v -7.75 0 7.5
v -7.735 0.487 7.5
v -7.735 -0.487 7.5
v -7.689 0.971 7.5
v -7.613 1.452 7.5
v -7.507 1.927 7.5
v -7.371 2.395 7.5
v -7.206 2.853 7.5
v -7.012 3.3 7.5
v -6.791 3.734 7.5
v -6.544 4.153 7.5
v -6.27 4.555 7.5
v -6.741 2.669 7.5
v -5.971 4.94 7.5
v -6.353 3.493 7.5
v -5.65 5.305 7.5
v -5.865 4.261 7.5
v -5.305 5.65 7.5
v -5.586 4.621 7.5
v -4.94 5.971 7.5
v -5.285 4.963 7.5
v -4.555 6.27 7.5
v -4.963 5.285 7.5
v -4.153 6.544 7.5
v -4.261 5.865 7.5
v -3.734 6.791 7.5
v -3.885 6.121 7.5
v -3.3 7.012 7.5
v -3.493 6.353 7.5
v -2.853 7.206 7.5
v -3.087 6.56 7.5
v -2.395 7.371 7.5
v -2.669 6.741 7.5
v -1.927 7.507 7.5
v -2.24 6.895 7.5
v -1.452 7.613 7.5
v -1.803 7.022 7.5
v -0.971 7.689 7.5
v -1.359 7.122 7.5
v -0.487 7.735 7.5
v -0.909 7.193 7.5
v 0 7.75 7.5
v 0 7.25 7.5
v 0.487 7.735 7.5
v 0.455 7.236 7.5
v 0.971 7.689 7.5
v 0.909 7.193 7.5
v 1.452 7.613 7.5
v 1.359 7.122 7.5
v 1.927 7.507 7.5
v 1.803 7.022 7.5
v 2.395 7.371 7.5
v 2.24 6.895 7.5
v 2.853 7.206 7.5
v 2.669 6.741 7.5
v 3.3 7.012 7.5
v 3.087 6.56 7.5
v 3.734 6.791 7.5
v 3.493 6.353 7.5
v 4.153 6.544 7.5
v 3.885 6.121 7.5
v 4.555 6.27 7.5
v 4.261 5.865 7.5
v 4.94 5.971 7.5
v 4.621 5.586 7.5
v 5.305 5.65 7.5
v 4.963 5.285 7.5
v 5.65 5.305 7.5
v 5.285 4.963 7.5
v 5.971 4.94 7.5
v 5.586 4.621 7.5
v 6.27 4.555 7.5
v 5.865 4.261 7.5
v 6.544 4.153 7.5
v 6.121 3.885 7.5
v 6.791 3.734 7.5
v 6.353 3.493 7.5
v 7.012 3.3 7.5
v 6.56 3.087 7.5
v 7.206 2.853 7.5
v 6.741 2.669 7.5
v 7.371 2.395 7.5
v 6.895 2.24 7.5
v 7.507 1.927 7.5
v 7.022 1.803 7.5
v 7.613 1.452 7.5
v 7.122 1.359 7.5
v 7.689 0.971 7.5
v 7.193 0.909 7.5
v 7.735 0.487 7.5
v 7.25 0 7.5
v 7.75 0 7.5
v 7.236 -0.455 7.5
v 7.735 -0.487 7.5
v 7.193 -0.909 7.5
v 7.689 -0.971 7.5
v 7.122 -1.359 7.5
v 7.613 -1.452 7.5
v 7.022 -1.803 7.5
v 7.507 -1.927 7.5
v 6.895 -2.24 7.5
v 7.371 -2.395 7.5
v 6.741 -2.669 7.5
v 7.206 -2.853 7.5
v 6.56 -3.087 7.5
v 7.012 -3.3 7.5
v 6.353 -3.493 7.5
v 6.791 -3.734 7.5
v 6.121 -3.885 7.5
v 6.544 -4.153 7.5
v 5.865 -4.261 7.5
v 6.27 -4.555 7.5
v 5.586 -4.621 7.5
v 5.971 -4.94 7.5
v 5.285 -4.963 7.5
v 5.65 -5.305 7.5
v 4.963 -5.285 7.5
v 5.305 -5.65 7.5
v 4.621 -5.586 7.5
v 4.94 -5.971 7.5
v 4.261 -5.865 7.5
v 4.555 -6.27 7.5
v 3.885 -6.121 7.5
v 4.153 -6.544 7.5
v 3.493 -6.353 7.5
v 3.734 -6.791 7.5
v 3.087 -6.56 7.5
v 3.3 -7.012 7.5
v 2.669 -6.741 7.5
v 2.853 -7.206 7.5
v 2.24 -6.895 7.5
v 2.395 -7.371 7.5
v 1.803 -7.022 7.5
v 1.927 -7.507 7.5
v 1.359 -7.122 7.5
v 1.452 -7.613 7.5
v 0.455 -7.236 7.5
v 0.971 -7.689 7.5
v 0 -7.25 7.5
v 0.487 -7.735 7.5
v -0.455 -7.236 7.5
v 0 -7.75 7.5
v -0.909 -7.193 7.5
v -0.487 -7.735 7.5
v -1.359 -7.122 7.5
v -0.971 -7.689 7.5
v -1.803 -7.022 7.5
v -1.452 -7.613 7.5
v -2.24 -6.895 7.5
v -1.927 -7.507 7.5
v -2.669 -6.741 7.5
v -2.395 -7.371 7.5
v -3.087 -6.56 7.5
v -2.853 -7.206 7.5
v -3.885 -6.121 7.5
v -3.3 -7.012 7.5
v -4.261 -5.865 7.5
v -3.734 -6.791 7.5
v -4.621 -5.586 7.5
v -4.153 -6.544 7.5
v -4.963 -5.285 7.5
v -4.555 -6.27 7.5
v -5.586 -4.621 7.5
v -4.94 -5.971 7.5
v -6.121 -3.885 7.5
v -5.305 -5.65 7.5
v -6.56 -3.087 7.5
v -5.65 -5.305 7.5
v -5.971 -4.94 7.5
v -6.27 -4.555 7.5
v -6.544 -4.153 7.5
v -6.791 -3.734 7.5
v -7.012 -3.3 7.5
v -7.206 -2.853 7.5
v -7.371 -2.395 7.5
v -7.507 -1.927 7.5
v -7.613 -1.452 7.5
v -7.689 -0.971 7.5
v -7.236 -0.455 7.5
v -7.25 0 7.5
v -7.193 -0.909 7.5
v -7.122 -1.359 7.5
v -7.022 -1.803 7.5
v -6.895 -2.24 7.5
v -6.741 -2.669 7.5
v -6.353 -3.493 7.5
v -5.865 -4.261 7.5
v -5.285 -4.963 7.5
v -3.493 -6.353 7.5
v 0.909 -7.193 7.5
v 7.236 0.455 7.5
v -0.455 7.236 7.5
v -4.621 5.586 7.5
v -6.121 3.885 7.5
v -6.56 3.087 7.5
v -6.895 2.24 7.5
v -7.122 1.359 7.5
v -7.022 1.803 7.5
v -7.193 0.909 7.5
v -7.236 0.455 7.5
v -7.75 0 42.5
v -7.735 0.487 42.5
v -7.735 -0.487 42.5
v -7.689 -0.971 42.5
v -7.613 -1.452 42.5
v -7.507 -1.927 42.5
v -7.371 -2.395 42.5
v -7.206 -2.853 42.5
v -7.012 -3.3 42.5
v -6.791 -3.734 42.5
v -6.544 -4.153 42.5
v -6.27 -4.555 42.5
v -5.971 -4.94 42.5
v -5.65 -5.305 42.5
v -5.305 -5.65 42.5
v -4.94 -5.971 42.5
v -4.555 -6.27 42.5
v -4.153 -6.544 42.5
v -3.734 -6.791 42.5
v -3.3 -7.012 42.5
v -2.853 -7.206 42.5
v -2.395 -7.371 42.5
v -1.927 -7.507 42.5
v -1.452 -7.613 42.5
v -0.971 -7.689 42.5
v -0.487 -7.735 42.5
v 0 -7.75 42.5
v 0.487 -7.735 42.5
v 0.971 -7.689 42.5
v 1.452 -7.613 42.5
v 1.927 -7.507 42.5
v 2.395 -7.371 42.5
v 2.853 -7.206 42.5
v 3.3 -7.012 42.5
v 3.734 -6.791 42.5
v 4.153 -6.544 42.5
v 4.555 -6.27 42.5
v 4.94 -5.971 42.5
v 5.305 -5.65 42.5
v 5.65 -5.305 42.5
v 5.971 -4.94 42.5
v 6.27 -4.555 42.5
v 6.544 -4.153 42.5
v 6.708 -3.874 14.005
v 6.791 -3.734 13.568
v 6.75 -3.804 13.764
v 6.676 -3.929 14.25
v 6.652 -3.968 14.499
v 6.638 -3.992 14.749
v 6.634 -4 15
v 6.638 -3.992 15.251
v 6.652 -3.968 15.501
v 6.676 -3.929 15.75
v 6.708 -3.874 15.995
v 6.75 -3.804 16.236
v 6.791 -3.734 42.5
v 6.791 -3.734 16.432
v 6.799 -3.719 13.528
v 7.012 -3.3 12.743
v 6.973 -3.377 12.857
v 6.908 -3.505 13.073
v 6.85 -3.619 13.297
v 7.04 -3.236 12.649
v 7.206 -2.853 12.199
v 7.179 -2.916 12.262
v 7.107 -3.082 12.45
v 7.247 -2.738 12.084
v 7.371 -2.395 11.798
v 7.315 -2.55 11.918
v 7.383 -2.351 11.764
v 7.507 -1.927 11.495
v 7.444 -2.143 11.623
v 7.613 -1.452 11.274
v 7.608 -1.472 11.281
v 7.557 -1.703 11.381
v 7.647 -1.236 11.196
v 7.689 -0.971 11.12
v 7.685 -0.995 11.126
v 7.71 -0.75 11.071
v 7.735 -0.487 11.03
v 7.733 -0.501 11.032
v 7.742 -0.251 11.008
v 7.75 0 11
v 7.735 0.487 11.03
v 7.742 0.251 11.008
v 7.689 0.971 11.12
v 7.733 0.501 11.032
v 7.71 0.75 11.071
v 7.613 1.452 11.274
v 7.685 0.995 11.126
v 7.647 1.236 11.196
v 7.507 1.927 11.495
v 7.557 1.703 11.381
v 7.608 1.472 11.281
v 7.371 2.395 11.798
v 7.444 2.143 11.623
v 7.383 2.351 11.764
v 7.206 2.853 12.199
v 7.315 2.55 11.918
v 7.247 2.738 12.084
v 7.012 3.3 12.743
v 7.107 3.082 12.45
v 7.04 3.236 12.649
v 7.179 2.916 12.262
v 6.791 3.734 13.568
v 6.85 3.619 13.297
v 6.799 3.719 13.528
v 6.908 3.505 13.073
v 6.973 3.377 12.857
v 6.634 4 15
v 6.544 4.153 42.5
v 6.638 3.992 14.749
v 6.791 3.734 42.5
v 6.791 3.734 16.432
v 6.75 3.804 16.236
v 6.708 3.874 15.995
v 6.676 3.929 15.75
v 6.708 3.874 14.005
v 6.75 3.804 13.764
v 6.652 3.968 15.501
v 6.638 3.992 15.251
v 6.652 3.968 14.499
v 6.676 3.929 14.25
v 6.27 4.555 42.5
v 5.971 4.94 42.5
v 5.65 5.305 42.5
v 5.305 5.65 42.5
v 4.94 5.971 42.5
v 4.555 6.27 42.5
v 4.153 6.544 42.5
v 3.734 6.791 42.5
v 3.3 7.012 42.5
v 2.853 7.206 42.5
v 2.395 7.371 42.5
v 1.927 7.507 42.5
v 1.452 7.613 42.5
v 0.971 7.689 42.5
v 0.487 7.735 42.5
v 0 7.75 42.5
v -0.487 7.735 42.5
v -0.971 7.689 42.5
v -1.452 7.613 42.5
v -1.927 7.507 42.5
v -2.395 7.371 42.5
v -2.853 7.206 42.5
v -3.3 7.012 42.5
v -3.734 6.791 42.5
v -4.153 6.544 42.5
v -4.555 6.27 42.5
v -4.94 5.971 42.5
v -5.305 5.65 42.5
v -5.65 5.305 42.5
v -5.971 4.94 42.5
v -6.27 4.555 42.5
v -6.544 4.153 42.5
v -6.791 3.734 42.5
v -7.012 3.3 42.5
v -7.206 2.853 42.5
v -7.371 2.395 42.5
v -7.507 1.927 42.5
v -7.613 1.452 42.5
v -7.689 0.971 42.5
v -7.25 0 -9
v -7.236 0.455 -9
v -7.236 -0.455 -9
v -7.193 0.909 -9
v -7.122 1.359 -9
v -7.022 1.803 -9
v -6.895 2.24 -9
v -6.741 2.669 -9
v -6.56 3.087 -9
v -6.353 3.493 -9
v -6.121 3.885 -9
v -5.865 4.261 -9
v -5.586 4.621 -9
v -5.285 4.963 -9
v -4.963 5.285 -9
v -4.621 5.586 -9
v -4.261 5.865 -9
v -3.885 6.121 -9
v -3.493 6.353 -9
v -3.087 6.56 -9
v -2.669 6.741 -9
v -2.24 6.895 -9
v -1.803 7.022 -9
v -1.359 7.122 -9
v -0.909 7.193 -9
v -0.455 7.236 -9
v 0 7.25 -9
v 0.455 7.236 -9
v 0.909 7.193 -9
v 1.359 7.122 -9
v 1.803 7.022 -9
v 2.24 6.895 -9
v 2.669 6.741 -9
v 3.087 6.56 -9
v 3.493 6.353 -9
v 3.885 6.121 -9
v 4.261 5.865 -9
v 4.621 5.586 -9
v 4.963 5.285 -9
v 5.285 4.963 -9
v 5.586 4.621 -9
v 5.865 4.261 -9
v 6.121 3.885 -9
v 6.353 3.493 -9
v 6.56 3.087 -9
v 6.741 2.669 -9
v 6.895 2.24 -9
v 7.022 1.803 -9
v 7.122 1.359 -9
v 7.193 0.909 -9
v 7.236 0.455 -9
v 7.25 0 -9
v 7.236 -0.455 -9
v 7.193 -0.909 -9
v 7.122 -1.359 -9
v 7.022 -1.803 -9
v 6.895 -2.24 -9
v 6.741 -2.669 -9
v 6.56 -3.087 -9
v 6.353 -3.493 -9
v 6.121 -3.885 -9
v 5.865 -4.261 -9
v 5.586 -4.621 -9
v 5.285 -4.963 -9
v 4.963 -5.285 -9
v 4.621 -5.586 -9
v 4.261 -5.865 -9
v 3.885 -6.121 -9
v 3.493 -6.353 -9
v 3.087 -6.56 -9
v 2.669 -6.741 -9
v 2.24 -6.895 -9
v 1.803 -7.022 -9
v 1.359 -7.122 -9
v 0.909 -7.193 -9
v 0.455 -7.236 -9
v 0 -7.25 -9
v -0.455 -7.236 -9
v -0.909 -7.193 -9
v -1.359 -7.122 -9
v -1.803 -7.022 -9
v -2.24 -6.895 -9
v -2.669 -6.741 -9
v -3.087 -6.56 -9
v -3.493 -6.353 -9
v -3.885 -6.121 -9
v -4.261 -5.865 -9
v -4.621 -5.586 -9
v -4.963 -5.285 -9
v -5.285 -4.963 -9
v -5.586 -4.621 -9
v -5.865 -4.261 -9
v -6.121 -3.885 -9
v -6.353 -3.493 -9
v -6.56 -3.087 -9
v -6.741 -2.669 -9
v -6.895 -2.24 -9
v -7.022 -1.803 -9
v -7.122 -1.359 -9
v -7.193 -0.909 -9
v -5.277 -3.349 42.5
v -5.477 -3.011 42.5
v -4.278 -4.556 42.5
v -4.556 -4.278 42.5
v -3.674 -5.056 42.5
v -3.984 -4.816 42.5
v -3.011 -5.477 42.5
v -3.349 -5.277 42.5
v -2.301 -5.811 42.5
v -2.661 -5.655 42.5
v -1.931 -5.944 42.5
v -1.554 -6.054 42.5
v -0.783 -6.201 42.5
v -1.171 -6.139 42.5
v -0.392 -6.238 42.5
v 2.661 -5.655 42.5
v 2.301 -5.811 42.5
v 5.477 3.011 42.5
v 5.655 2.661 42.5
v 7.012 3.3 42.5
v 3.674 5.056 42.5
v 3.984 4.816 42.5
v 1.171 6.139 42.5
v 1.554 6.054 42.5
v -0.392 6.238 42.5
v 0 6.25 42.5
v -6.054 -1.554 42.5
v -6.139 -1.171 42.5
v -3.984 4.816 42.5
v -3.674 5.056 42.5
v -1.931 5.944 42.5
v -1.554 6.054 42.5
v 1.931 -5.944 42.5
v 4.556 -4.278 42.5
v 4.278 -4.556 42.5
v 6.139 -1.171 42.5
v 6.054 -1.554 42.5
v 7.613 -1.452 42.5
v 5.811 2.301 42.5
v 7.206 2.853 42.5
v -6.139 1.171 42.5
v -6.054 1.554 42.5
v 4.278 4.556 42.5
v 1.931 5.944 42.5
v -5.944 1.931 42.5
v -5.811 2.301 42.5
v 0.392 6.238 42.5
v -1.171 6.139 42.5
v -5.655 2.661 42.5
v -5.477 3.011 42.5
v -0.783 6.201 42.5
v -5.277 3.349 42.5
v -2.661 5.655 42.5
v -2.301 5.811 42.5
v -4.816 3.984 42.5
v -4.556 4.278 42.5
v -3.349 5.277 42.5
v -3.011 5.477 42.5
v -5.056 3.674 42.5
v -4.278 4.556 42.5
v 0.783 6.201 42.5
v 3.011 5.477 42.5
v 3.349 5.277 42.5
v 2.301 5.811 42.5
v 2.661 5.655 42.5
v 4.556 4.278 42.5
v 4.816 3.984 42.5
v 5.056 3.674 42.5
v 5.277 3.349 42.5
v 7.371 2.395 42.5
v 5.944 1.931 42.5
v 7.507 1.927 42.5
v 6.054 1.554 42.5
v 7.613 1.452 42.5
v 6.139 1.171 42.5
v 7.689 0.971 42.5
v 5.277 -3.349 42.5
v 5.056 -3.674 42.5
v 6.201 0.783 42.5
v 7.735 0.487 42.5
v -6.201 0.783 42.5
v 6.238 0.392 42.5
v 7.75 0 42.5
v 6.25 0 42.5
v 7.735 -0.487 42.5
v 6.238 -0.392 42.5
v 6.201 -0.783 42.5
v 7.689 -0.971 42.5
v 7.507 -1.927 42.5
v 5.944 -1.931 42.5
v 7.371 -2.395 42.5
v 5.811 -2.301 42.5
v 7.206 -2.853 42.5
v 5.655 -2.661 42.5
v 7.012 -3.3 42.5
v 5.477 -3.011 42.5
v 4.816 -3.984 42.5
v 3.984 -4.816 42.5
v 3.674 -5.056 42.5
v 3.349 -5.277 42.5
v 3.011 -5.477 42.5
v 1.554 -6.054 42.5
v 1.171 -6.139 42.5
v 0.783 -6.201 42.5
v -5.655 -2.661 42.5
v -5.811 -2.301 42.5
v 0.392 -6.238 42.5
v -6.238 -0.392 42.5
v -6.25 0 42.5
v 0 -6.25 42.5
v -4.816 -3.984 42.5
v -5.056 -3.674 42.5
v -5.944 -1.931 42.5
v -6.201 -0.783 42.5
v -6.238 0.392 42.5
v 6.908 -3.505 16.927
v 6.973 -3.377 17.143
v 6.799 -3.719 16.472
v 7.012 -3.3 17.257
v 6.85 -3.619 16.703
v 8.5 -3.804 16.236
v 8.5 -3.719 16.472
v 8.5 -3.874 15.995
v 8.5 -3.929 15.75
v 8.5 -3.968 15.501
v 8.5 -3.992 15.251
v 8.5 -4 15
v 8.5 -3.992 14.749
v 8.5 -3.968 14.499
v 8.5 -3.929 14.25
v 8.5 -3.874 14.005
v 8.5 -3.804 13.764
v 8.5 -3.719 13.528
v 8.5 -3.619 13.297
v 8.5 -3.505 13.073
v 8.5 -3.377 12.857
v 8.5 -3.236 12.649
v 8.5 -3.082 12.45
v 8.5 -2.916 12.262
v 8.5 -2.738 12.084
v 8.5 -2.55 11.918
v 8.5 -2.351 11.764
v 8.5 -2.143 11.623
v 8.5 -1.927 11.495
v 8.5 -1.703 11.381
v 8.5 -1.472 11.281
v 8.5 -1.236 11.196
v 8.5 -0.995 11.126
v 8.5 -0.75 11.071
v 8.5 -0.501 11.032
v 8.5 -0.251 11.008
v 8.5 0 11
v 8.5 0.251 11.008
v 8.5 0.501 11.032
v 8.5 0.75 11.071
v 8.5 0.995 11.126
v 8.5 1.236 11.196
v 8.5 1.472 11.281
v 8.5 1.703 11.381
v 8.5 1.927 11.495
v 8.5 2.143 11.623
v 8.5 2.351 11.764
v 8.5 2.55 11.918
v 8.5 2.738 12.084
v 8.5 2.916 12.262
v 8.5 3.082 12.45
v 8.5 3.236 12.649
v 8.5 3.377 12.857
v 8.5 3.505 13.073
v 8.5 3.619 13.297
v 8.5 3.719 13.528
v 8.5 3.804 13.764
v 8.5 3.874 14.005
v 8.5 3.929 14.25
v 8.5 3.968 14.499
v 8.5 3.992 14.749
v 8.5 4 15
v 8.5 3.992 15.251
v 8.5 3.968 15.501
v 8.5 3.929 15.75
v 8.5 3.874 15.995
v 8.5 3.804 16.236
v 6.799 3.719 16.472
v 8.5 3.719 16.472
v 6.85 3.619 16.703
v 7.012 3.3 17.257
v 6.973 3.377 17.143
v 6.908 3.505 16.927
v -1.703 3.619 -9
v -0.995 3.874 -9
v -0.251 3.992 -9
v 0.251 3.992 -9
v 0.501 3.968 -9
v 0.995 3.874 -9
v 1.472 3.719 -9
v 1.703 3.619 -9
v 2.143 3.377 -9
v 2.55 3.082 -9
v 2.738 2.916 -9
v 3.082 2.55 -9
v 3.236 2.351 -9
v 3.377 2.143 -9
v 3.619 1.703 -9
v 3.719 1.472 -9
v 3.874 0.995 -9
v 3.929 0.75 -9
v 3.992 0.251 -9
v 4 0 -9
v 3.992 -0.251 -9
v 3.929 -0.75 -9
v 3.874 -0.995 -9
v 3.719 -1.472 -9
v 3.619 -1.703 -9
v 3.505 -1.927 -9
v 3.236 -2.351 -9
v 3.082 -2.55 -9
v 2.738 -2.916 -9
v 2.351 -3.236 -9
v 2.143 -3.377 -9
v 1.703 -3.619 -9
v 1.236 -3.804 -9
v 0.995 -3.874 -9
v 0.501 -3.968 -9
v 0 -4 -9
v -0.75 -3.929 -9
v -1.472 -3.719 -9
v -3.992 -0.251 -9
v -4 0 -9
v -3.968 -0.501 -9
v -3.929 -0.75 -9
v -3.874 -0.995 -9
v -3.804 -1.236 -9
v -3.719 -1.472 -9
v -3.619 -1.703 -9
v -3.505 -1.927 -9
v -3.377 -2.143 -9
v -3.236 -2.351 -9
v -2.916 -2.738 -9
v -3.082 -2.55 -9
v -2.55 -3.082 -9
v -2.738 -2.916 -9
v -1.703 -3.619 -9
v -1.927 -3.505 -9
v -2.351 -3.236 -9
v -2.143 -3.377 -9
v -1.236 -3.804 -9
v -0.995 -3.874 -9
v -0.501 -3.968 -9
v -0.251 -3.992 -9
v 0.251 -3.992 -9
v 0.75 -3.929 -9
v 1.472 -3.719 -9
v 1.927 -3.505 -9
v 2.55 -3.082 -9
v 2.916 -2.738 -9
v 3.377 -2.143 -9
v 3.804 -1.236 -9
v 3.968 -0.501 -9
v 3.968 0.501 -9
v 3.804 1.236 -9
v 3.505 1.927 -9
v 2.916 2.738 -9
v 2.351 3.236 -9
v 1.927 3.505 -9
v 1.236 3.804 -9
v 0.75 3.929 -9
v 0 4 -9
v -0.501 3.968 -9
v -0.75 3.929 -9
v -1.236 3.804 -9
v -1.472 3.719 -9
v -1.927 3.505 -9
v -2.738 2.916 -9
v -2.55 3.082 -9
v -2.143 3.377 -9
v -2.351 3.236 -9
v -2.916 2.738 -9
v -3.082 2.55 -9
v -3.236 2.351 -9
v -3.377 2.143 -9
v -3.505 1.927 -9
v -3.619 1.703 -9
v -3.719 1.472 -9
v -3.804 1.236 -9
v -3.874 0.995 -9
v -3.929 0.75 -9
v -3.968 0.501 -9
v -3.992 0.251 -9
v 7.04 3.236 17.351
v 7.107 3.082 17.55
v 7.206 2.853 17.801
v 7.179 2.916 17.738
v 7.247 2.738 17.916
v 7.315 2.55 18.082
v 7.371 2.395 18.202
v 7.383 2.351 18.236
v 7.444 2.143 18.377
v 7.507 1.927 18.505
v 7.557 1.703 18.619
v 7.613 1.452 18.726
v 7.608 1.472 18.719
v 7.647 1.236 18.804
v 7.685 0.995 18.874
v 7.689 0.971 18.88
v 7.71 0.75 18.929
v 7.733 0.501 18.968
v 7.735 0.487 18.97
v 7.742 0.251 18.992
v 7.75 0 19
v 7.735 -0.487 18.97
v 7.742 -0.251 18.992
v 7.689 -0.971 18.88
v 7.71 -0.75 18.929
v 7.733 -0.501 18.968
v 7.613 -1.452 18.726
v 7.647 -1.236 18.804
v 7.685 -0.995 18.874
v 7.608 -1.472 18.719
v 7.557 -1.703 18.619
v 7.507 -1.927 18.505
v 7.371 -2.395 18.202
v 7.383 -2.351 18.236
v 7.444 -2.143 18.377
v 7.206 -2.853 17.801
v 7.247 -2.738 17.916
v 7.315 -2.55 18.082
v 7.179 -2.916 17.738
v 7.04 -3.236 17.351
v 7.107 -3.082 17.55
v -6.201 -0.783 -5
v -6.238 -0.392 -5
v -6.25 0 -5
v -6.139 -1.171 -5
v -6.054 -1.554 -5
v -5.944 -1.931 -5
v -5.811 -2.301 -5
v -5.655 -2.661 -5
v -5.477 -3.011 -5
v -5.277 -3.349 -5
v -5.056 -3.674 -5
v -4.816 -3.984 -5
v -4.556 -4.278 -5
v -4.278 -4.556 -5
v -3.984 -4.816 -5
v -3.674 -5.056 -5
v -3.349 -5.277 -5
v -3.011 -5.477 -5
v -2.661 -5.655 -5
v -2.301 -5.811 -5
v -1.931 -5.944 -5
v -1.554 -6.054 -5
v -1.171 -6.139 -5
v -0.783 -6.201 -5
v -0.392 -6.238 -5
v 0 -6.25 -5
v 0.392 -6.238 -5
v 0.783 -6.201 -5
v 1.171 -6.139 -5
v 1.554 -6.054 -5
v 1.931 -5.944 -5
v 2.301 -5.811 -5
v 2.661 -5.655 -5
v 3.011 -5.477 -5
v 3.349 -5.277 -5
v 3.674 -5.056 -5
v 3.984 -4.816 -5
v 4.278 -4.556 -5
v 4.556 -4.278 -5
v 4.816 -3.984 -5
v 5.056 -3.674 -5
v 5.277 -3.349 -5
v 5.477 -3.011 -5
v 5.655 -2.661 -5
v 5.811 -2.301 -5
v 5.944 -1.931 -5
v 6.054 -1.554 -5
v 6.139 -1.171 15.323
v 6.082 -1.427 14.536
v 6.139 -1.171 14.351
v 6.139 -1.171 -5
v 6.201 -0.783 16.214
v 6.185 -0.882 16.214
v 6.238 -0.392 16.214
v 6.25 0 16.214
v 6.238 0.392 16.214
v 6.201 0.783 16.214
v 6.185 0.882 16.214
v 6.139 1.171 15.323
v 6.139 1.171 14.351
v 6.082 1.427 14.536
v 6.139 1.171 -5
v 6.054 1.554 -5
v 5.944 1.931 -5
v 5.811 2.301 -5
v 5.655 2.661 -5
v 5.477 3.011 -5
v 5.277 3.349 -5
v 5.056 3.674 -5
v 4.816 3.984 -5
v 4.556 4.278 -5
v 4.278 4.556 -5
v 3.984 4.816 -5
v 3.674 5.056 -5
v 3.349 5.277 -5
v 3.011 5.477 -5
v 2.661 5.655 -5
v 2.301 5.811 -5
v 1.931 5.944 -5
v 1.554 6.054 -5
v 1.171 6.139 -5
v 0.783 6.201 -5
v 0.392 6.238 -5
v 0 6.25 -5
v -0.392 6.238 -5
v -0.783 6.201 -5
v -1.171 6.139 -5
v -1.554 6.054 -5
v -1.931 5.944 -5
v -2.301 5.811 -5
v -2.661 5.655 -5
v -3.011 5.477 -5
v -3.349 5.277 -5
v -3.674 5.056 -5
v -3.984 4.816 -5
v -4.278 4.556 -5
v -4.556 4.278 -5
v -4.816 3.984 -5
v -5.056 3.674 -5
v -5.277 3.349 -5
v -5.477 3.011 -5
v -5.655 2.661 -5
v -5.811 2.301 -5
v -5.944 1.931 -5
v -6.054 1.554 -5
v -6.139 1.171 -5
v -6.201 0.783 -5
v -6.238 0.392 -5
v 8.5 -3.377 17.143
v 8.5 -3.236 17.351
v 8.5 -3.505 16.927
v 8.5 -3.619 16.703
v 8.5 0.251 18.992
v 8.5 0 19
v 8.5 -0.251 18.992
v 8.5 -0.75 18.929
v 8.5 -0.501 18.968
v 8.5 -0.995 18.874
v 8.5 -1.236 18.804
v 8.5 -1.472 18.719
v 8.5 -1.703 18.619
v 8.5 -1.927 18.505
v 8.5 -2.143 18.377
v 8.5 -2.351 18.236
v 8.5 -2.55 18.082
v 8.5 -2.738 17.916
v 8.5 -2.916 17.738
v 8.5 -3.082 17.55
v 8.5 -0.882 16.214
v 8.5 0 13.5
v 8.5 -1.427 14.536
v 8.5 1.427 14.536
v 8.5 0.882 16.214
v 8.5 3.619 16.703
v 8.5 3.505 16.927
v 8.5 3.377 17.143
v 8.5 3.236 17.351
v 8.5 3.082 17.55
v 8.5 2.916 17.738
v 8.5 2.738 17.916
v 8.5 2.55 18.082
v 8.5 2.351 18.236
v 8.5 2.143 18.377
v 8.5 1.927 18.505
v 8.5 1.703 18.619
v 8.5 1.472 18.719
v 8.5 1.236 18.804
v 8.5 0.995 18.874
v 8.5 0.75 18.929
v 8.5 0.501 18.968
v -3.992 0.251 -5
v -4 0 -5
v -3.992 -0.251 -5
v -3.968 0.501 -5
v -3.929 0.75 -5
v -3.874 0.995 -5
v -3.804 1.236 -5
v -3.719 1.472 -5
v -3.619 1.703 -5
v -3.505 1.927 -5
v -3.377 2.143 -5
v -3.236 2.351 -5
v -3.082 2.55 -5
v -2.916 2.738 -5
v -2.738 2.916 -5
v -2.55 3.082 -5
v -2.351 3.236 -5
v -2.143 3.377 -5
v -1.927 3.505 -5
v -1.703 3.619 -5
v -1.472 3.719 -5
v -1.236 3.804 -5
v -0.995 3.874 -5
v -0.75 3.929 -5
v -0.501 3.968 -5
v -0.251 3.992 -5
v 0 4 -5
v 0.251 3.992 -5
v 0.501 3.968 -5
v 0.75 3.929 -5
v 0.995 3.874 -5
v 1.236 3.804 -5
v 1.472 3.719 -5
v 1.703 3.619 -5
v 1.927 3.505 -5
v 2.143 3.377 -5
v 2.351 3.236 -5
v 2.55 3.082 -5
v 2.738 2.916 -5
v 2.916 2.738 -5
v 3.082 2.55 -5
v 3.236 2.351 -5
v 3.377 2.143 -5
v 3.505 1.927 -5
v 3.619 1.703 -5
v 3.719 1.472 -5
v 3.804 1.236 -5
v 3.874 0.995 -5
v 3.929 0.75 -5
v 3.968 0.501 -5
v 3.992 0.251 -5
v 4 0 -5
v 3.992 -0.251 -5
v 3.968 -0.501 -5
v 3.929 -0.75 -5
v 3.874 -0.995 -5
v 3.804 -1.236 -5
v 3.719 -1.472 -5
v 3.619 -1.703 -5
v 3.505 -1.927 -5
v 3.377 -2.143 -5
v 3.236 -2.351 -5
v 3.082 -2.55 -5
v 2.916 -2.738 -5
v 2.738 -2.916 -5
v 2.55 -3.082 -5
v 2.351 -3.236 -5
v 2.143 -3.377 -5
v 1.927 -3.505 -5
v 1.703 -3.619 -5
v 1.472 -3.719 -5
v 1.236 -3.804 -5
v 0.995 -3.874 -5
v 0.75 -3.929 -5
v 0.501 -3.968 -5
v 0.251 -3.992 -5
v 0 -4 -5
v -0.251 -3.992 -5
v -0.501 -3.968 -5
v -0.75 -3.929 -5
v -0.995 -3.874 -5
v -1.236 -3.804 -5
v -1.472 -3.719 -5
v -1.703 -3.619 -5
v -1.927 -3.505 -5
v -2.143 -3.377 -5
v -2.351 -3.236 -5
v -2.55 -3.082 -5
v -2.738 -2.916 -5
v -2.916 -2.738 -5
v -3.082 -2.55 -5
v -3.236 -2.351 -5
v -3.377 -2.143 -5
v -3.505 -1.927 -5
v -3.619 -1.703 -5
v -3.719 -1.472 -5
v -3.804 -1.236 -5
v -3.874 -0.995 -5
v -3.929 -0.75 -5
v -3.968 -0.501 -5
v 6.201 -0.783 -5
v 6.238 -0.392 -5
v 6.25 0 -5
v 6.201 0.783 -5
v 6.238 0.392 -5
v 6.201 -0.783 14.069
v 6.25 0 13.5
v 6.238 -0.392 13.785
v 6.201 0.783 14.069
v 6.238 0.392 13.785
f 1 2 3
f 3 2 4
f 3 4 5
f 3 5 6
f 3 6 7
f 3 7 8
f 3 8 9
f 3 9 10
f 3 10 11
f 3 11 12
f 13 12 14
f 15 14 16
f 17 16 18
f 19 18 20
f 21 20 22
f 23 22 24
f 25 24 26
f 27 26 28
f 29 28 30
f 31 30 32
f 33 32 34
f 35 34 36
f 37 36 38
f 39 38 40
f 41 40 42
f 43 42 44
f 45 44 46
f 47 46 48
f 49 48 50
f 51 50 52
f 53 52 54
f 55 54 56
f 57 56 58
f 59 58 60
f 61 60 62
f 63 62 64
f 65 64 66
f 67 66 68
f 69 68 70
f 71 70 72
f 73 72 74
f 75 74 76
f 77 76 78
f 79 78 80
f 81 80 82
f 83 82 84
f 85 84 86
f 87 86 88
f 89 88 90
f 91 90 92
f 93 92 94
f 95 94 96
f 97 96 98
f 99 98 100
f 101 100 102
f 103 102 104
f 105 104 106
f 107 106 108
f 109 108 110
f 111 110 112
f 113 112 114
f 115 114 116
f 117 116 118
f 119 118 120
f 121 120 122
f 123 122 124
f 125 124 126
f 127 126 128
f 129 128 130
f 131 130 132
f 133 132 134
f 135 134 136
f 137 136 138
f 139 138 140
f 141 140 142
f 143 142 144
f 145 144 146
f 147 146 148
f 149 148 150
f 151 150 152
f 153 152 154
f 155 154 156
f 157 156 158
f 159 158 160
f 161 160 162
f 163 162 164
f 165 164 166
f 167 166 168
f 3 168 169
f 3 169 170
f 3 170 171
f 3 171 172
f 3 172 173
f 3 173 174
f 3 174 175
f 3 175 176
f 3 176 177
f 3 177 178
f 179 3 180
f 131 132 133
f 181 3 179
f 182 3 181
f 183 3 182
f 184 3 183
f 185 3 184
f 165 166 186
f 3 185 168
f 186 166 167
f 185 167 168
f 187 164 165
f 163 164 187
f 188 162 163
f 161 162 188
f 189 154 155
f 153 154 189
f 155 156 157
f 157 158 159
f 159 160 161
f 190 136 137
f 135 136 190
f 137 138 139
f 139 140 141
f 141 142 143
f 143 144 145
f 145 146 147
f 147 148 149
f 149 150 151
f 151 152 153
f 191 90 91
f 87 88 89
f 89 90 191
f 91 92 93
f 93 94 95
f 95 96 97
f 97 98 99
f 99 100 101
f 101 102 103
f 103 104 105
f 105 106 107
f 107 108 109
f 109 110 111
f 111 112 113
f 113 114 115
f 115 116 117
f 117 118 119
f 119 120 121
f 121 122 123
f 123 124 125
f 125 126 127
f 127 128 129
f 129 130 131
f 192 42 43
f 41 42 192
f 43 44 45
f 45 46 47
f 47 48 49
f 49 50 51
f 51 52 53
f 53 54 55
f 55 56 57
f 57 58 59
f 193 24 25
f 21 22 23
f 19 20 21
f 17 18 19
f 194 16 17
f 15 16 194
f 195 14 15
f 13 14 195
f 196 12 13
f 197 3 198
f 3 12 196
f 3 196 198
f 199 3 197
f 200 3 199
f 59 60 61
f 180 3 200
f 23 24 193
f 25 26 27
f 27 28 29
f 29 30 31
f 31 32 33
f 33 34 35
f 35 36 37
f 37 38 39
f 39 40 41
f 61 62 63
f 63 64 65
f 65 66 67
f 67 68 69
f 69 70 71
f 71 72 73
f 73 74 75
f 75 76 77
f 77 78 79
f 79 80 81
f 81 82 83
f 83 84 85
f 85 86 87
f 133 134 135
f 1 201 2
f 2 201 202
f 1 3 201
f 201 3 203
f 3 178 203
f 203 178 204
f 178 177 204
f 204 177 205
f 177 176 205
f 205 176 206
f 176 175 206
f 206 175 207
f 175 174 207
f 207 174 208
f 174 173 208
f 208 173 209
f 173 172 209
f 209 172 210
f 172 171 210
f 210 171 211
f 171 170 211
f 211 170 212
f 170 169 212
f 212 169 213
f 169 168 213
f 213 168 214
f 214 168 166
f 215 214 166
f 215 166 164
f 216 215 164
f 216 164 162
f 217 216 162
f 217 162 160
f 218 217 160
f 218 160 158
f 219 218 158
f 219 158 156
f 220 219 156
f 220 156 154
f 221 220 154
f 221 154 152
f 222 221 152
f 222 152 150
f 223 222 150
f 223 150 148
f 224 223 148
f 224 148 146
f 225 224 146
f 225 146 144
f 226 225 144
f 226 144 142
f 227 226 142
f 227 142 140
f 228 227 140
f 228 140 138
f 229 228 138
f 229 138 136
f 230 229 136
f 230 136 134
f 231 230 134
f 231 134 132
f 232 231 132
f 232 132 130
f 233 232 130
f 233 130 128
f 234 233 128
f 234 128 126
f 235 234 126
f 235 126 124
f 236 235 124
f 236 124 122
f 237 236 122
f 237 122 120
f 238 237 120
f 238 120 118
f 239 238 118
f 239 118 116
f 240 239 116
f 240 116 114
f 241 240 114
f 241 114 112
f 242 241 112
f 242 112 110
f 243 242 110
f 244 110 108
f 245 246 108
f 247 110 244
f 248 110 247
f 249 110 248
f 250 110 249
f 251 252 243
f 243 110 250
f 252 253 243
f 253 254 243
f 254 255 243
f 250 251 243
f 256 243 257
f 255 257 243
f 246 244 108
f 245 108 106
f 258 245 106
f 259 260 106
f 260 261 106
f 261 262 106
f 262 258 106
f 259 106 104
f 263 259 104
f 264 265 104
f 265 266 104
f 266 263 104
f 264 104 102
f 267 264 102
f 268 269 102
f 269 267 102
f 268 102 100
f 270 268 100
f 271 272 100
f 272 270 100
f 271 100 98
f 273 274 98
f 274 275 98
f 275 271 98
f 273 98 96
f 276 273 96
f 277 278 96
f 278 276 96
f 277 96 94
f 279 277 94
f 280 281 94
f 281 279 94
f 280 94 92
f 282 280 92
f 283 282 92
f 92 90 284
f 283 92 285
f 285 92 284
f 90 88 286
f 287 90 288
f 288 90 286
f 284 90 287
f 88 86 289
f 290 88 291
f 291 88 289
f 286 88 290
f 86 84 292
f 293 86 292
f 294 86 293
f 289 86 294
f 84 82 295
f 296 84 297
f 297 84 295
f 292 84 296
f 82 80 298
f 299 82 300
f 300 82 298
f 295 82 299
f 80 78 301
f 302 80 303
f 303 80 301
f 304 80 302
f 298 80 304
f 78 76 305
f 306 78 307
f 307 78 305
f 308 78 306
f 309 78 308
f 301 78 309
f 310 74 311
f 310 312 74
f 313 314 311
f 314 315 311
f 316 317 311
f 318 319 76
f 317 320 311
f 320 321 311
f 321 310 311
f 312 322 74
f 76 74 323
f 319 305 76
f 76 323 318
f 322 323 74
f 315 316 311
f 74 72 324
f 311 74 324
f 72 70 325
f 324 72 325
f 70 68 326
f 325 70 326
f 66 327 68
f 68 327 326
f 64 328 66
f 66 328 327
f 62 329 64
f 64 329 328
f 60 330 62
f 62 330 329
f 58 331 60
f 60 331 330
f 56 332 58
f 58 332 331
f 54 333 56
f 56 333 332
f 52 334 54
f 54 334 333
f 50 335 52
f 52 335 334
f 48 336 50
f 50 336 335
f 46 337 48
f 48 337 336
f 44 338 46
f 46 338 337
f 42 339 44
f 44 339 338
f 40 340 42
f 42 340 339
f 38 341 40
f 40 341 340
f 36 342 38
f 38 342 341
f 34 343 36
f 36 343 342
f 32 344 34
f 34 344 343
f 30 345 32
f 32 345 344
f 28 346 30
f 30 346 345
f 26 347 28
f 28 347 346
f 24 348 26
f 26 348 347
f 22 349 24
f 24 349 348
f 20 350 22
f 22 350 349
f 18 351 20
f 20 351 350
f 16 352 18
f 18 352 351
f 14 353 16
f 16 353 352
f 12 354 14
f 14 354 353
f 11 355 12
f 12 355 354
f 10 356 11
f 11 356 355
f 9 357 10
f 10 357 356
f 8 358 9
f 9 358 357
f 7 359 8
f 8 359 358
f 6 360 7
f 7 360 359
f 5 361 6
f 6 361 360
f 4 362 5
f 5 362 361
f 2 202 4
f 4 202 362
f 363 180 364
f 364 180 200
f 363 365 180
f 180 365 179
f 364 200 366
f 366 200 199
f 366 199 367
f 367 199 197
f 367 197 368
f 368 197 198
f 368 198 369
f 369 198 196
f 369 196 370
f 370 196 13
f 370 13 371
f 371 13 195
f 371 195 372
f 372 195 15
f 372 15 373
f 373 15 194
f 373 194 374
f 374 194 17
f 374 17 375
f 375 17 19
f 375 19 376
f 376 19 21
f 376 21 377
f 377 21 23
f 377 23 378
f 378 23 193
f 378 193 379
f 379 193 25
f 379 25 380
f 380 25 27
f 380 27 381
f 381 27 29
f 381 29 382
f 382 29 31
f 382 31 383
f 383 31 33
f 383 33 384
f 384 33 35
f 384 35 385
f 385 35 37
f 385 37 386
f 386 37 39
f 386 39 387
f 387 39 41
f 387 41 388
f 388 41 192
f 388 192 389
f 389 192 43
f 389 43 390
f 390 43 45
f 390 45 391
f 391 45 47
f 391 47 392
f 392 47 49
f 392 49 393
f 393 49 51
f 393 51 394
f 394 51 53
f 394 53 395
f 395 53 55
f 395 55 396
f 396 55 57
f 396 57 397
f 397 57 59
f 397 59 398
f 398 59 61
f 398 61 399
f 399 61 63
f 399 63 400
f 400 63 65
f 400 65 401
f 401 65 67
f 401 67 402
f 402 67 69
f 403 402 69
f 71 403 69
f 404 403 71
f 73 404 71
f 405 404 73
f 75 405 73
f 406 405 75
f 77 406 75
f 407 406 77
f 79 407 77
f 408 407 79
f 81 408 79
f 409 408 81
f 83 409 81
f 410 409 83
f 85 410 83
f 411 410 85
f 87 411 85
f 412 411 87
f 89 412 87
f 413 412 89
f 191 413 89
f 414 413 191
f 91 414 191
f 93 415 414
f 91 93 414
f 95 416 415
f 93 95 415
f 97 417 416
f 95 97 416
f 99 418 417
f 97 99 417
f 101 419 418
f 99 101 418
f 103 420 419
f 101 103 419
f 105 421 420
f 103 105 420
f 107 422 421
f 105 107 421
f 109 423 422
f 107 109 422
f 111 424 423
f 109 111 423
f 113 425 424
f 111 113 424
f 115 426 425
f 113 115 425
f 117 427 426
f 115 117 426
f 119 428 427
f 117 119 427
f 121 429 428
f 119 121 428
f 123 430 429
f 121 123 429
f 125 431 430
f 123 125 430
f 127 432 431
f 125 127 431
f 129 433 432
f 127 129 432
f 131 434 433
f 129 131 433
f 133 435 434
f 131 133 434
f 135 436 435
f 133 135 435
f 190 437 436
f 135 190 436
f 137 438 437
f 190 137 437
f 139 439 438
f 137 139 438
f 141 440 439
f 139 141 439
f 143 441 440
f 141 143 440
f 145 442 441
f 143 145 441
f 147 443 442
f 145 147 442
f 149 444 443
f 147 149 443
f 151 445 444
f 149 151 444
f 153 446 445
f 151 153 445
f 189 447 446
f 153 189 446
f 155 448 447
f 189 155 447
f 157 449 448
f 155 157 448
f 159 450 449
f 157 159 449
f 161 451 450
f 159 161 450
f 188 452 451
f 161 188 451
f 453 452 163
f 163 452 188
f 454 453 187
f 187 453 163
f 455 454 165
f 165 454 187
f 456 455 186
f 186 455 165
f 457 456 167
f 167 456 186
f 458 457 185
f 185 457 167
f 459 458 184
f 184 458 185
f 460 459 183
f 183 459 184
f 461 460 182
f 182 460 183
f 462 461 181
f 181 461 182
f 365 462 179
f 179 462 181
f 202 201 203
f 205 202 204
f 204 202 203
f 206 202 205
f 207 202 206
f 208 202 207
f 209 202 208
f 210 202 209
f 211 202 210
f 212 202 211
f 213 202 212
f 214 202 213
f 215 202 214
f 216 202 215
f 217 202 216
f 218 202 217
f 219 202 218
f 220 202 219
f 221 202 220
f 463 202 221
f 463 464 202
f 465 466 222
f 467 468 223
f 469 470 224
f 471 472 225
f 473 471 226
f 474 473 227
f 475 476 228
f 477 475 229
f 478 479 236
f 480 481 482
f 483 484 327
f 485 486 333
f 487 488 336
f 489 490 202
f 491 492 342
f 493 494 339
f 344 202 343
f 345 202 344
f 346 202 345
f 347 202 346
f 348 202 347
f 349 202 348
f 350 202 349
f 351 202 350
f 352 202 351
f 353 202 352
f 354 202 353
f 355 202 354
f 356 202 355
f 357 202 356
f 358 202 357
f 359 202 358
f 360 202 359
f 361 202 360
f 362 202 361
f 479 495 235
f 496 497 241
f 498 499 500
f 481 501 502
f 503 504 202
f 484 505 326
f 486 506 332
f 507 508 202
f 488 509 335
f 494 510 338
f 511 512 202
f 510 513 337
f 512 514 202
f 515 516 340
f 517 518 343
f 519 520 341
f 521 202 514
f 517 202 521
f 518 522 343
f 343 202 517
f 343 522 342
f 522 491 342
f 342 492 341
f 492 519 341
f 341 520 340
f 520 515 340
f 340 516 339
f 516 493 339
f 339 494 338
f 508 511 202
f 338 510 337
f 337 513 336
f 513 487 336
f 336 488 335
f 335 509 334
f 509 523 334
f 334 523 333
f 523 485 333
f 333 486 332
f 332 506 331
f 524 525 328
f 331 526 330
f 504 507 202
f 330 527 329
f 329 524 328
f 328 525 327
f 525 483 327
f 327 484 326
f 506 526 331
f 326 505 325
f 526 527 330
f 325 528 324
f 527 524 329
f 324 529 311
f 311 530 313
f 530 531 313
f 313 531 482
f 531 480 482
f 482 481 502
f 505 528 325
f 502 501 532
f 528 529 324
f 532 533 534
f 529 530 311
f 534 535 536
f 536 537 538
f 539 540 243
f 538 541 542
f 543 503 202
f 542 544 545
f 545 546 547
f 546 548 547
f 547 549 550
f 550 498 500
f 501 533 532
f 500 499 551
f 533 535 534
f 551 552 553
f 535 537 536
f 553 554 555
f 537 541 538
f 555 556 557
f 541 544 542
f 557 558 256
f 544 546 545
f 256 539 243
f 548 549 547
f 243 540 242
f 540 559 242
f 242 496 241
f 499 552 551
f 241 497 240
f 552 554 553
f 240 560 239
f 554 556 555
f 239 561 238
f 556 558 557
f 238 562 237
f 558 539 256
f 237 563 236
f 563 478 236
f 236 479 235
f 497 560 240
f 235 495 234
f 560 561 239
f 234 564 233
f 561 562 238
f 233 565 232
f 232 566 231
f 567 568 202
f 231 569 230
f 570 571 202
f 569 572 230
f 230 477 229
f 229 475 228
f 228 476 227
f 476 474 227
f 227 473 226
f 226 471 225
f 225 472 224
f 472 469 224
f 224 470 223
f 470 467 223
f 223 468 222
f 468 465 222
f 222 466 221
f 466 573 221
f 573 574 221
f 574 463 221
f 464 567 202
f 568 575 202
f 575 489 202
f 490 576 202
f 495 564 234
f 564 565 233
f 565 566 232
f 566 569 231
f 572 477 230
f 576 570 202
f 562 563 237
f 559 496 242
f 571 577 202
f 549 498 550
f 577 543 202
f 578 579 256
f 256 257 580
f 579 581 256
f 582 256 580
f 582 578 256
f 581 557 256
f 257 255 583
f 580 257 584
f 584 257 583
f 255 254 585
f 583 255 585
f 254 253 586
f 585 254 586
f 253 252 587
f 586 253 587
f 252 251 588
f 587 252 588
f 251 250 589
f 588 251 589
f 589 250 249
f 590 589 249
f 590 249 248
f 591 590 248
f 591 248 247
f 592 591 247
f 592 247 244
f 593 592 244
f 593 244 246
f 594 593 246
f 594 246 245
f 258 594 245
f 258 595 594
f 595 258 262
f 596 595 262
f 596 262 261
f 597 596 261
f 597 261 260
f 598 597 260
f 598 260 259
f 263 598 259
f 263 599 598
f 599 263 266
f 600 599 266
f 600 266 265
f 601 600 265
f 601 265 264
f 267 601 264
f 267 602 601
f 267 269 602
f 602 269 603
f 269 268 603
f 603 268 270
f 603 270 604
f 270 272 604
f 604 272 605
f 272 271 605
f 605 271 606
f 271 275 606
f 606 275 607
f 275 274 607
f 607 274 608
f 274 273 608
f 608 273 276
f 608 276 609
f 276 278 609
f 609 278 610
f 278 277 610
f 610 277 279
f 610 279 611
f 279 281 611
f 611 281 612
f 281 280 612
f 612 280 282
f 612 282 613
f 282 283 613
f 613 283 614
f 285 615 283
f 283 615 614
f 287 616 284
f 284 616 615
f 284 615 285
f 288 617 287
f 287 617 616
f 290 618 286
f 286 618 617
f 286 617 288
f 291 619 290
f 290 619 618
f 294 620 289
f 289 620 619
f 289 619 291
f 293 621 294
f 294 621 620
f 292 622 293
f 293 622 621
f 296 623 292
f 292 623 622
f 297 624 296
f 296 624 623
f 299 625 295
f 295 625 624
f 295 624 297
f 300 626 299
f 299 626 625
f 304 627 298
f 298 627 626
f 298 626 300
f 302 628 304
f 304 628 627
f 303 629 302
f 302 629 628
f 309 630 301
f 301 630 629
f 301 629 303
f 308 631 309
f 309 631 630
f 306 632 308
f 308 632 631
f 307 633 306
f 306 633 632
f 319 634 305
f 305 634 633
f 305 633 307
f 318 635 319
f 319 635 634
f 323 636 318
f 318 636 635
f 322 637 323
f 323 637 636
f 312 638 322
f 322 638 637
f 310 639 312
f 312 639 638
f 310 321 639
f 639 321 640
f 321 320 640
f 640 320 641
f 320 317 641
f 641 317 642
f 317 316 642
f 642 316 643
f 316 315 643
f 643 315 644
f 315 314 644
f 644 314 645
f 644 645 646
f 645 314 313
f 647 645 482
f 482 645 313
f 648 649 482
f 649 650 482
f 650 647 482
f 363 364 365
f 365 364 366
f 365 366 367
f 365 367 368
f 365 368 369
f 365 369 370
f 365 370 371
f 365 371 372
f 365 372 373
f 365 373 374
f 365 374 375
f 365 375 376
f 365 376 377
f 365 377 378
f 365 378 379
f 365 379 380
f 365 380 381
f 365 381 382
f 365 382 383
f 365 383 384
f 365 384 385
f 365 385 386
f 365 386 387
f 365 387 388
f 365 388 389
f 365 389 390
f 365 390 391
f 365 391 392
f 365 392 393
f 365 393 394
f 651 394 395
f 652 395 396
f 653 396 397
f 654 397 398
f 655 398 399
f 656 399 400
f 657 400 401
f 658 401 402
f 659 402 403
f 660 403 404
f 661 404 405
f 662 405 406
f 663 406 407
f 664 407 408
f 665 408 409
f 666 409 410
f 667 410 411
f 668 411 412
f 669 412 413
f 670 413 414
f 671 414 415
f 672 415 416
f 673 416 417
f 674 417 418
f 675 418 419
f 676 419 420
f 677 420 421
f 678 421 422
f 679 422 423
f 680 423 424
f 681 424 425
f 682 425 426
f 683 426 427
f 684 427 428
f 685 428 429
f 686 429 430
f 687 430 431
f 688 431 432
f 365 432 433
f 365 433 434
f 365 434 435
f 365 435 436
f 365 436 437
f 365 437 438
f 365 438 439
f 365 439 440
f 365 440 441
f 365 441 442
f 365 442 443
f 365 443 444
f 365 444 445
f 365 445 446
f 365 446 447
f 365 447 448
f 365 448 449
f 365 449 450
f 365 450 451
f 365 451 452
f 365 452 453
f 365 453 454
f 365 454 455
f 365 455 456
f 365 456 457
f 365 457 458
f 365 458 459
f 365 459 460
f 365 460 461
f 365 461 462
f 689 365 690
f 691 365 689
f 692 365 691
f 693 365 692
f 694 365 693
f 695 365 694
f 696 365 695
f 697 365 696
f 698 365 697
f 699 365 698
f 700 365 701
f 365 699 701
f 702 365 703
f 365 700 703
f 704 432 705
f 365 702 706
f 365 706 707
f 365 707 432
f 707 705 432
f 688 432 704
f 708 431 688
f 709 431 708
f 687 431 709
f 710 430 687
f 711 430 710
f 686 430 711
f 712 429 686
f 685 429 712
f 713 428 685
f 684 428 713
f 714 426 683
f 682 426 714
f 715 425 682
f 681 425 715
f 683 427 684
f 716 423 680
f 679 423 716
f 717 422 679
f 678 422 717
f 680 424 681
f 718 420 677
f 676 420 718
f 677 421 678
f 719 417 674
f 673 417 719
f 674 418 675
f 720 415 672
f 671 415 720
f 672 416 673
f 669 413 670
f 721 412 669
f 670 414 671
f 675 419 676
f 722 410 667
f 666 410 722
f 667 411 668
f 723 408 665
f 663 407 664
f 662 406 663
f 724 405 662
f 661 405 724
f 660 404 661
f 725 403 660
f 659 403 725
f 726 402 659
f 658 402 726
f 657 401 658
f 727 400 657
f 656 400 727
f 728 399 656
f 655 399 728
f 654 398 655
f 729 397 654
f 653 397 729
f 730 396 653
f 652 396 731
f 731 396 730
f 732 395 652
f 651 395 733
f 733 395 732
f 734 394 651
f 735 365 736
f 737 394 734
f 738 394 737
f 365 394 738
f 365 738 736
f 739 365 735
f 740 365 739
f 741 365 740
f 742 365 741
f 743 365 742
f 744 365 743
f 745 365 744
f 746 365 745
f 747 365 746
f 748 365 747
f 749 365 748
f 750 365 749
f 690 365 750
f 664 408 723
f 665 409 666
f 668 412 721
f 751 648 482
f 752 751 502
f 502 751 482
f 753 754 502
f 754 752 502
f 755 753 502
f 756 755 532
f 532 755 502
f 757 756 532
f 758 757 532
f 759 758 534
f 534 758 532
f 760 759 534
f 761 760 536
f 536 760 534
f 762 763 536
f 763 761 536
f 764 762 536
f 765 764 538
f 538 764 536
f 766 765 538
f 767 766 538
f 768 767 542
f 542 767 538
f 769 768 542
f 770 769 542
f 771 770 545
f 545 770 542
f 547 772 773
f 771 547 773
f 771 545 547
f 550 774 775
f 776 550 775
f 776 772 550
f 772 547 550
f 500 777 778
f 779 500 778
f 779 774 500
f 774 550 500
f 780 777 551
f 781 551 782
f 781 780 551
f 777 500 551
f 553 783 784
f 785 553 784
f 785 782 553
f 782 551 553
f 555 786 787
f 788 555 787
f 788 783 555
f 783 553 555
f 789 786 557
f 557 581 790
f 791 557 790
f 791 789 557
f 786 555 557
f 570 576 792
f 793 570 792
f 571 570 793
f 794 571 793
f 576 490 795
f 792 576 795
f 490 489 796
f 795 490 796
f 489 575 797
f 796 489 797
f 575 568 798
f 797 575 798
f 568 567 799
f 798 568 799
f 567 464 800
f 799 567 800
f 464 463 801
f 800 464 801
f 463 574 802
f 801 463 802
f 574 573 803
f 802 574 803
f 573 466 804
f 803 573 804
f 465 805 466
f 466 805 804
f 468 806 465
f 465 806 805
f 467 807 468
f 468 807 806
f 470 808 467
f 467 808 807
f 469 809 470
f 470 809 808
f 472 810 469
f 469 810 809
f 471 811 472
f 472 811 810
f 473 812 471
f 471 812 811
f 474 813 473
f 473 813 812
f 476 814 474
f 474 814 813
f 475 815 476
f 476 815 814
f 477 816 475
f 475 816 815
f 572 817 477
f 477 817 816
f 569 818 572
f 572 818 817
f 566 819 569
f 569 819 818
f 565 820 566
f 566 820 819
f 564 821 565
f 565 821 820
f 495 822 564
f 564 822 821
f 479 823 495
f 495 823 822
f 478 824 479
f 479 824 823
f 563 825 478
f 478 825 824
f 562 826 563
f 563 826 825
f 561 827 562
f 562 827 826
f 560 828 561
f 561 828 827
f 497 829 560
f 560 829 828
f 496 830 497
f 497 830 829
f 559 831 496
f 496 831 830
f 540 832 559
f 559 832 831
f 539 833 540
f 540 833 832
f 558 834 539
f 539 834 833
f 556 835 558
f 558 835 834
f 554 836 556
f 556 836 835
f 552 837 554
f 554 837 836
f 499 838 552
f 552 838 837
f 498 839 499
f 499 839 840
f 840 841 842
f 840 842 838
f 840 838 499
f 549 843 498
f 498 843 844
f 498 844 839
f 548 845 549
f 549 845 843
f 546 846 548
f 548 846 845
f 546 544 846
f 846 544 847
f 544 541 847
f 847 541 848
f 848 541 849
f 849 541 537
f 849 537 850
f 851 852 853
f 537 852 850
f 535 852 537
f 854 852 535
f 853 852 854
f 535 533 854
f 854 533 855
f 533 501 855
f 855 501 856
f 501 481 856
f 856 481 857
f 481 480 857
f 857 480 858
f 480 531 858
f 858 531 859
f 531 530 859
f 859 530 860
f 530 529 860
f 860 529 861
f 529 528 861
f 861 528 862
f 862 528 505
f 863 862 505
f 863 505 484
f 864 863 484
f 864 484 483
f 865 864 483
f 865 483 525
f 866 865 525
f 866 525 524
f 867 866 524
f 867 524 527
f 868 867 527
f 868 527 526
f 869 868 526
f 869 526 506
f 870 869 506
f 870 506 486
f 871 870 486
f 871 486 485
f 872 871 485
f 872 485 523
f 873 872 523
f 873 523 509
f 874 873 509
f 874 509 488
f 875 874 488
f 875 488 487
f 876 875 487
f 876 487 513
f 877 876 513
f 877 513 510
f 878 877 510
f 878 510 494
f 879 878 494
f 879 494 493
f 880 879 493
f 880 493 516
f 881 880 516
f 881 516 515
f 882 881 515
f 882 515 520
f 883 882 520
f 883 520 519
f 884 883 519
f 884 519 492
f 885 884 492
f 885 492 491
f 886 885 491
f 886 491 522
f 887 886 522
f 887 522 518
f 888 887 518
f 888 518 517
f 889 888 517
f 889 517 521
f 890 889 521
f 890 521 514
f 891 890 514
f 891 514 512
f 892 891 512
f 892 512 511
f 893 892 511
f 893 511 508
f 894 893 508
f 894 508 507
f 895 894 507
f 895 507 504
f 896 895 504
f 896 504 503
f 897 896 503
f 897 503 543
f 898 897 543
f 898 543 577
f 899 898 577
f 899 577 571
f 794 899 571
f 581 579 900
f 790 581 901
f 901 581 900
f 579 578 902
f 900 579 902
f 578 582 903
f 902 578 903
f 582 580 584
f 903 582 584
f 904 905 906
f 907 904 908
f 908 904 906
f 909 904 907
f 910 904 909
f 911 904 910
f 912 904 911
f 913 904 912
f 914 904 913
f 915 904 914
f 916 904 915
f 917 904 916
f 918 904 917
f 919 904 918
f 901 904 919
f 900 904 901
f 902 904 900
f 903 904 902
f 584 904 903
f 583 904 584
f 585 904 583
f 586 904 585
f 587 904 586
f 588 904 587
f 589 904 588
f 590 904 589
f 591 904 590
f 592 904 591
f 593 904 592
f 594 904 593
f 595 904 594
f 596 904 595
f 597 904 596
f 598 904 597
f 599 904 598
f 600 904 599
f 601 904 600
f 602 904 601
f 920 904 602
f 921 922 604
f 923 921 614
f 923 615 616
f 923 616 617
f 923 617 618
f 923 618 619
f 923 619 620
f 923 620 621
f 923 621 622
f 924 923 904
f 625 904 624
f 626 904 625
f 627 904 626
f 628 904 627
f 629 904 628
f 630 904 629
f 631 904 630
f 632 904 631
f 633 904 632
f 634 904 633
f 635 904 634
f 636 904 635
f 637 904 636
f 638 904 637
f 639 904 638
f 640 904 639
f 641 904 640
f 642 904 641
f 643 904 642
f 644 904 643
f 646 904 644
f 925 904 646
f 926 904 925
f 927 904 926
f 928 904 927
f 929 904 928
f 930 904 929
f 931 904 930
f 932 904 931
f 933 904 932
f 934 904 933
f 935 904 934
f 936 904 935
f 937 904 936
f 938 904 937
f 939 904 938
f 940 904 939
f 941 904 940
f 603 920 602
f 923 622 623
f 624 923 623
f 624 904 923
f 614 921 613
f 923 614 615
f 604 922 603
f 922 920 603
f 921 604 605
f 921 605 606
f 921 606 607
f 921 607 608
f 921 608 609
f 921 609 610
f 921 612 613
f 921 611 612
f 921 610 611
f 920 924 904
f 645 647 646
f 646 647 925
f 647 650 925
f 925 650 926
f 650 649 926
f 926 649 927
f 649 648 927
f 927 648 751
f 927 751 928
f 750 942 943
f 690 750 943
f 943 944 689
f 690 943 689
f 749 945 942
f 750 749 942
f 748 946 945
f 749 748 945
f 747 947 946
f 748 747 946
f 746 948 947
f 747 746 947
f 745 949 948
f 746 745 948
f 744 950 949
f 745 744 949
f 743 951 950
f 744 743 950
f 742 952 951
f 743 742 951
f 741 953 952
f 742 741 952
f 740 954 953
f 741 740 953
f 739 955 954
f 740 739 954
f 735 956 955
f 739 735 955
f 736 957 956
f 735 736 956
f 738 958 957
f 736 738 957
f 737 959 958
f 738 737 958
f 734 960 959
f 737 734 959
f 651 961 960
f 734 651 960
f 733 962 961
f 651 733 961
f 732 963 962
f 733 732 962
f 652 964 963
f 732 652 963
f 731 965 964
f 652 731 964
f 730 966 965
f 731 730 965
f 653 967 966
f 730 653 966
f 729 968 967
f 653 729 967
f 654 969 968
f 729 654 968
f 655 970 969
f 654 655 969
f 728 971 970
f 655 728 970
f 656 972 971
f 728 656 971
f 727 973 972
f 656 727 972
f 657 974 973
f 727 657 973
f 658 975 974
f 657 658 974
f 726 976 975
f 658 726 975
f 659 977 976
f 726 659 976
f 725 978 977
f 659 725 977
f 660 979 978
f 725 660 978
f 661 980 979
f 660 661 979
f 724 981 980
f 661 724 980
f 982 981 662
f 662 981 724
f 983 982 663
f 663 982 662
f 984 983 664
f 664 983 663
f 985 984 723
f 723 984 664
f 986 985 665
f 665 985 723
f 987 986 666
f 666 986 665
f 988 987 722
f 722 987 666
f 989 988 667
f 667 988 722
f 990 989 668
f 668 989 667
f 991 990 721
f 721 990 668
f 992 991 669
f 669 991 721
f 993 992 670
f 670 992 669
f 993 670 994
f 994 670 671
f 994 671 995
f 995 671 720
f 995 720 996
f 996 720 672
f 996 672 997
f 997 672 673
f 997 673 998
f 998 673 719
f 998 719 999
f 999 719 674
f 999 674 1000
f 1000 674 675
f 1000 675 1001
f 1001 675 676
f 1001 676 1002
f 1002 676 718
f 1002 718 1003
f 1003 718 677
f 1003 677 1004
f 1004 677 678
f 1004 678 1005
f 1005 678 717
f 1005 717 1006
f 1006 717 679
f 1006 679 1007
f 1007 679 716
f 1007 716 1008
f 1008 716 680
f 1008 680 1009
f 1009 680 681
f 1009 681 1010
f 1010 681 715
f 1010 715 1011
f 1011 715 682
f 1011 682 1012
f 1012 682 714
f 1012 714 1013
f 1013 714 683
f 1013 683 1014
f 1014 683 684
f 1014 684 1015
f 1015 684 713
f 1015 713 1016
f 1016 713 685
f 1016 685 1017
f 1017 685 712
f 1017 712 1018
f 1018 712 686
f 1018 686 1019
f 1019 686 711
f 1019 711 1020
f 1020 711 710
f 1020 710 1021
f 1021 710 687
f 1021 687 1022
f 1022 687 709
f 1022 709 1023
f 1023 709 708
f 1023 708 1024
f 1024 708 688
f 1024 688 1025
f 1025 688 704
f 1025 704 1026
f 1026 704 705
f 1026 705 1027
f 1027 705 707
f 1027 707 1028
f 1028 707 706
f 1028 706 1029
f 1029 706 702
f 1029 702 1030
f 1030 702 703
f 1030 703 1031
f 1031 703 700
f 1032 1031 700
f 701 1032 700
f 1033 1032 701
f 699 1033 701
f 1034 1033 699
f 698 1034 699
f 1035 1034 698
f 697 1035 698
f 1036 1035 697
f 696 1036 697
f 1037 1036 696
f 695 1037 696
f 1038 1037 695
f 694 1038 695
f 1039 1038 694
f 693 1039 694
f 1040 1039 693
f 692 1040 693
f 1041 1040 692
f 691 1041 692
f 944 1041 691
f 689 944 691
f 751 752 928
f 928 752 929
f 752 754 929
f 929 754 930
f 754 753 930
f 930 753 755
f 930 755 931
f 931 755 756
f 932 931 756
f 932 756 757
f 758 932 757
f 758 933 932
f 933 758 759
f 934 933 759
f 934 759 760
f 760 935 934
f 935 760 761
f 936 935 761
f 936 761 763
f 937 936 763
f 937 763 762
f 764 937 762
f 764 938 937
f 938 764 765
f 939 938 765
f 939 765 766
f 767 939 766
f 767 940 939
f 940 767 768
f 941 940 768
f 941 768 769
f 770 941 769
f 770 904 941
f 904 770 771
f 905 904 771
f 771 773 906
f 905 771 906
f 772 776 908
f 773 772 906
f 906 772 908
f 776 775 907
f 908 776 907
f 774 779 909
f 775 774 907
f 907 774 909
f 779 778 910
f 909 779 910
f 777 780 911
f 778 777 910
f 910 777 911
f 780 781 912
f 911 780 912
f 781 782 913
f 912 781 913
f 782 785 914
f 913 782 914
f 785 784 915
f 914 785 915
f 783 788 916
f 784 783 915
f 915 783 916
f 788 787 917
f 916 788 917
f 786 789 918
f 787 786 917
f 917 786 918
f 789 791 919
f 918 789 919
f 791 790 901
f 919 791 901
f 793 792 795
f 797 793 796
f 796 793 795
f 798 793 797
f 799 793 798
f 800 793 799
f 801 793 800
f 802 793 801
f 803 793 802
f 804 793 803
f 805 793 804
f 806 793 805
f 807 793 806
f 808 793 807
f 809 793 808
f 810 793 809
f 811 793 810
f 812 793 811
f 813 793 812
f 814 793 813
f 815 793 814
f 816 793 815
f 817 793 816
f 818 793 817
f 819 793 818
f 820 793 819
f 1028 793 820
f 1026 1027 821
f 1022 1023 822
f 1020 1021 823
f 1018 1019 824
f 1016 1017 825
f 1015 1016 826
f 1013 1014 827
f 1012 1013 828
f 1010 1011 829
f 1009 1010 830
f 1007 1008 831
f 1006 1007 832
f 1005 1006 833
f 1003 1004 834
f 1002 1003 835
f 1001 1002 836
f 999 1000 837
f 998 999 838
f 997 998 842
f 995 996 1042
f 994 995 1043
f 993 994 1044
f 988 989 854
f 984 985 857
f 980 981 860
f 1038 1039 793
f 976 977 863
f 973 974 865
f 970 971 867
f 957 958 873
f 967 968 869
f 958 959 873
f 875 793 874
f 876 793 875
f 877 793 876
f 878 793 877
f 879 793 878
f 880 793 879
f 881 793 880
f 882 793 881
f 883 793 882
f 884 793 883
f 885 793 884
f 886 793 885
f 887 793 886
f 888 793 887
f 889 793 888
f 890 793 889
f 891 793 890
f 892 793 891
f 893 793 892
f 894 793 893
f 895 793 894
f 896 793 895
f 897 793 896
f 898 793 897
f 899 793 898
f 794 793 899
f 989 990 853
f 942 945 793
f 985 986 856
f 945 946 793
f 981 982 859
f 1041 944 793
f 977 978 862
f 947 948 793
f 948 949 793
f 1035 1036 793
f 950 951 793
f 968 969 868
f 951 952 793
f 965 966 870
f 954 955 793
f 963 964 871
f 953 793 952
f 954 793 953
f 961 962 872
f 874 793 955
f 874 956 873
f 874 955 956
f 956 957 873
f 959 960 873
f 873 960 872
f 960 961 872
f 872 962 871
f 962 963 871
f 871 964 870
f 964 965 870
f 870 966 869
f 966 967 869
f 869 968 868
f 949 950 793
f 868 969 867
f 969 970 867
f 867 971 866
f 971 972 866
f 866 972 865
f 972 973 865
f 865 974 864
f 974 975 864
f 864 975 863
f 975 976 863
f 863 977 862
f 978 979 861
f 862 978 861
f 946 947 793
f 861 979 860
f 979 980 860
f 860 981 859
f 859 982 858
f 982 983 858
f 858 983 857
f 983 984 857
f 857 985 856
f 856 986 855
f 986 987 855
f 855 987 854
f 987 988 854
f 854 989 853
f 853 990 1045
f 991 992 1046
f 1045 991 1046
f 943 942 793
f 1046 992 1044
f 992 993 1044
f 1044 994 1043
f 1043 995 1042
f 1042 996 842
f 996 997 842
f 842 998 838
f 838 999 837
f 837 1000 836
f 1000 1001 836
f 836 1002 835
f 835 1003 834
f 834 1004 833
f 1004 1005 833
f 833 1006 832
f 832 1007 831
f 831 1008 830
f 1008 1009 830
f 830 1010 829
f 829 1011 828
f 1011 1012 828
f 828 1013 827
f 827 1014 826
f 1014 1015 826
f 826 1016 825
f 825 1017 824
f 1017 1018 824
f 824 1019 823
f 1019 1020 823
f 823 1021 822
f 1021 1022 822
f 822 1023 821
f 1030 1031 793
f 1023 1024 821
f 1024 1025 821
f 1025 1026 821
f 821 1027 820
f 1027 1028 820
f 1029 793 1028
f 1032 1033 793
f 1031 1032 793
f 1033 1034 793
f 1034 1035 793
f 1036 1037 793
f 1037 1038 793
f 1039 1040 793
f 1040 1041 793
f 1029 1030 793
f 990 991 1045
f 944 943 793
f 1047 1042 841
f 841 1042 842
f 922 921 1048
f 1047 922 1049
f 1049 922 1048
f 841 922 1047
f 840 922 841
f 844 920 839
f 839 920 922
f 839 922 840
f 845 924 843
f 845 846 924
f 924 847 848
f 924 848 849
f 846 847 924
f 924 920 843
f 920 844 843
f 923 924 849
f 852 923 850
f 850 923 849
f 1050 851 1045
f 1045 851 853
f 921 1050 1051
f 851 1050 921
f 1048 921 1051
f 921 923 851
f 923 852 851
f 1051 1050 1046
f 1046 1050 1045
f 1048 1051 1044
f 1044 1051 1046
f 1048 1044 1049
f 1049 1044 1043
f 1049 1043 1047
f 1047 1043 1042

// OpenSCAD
module body(){
	difference(){
		union(){
			//lowerBody
			cylinder(r=7.25, h= 18, $fn=100, center=true);
			//upperBody
			translate([0,0,25]) cylinder(d=15.5, h= 35, $fn=100, center=true);
			//sideHoleBody
			translate([5,0,15]) rotate([0,90,0]) cylinder(r=4,h=7, $fn=100, center=true);
		}
		//upperInside
		translate([0,0,20]) cylinder(d=12.5, h=50, $fn=100, center=true);
		//baseInside
		translate([0,0,-9]) cylinder(d=8, h=10, $fn=100, center=true);
		//screwHole
		translate([5,0,15]) rotate([0,90,0]) cylinder(r=1.5,h=10, center=true);
	}
}


body();
